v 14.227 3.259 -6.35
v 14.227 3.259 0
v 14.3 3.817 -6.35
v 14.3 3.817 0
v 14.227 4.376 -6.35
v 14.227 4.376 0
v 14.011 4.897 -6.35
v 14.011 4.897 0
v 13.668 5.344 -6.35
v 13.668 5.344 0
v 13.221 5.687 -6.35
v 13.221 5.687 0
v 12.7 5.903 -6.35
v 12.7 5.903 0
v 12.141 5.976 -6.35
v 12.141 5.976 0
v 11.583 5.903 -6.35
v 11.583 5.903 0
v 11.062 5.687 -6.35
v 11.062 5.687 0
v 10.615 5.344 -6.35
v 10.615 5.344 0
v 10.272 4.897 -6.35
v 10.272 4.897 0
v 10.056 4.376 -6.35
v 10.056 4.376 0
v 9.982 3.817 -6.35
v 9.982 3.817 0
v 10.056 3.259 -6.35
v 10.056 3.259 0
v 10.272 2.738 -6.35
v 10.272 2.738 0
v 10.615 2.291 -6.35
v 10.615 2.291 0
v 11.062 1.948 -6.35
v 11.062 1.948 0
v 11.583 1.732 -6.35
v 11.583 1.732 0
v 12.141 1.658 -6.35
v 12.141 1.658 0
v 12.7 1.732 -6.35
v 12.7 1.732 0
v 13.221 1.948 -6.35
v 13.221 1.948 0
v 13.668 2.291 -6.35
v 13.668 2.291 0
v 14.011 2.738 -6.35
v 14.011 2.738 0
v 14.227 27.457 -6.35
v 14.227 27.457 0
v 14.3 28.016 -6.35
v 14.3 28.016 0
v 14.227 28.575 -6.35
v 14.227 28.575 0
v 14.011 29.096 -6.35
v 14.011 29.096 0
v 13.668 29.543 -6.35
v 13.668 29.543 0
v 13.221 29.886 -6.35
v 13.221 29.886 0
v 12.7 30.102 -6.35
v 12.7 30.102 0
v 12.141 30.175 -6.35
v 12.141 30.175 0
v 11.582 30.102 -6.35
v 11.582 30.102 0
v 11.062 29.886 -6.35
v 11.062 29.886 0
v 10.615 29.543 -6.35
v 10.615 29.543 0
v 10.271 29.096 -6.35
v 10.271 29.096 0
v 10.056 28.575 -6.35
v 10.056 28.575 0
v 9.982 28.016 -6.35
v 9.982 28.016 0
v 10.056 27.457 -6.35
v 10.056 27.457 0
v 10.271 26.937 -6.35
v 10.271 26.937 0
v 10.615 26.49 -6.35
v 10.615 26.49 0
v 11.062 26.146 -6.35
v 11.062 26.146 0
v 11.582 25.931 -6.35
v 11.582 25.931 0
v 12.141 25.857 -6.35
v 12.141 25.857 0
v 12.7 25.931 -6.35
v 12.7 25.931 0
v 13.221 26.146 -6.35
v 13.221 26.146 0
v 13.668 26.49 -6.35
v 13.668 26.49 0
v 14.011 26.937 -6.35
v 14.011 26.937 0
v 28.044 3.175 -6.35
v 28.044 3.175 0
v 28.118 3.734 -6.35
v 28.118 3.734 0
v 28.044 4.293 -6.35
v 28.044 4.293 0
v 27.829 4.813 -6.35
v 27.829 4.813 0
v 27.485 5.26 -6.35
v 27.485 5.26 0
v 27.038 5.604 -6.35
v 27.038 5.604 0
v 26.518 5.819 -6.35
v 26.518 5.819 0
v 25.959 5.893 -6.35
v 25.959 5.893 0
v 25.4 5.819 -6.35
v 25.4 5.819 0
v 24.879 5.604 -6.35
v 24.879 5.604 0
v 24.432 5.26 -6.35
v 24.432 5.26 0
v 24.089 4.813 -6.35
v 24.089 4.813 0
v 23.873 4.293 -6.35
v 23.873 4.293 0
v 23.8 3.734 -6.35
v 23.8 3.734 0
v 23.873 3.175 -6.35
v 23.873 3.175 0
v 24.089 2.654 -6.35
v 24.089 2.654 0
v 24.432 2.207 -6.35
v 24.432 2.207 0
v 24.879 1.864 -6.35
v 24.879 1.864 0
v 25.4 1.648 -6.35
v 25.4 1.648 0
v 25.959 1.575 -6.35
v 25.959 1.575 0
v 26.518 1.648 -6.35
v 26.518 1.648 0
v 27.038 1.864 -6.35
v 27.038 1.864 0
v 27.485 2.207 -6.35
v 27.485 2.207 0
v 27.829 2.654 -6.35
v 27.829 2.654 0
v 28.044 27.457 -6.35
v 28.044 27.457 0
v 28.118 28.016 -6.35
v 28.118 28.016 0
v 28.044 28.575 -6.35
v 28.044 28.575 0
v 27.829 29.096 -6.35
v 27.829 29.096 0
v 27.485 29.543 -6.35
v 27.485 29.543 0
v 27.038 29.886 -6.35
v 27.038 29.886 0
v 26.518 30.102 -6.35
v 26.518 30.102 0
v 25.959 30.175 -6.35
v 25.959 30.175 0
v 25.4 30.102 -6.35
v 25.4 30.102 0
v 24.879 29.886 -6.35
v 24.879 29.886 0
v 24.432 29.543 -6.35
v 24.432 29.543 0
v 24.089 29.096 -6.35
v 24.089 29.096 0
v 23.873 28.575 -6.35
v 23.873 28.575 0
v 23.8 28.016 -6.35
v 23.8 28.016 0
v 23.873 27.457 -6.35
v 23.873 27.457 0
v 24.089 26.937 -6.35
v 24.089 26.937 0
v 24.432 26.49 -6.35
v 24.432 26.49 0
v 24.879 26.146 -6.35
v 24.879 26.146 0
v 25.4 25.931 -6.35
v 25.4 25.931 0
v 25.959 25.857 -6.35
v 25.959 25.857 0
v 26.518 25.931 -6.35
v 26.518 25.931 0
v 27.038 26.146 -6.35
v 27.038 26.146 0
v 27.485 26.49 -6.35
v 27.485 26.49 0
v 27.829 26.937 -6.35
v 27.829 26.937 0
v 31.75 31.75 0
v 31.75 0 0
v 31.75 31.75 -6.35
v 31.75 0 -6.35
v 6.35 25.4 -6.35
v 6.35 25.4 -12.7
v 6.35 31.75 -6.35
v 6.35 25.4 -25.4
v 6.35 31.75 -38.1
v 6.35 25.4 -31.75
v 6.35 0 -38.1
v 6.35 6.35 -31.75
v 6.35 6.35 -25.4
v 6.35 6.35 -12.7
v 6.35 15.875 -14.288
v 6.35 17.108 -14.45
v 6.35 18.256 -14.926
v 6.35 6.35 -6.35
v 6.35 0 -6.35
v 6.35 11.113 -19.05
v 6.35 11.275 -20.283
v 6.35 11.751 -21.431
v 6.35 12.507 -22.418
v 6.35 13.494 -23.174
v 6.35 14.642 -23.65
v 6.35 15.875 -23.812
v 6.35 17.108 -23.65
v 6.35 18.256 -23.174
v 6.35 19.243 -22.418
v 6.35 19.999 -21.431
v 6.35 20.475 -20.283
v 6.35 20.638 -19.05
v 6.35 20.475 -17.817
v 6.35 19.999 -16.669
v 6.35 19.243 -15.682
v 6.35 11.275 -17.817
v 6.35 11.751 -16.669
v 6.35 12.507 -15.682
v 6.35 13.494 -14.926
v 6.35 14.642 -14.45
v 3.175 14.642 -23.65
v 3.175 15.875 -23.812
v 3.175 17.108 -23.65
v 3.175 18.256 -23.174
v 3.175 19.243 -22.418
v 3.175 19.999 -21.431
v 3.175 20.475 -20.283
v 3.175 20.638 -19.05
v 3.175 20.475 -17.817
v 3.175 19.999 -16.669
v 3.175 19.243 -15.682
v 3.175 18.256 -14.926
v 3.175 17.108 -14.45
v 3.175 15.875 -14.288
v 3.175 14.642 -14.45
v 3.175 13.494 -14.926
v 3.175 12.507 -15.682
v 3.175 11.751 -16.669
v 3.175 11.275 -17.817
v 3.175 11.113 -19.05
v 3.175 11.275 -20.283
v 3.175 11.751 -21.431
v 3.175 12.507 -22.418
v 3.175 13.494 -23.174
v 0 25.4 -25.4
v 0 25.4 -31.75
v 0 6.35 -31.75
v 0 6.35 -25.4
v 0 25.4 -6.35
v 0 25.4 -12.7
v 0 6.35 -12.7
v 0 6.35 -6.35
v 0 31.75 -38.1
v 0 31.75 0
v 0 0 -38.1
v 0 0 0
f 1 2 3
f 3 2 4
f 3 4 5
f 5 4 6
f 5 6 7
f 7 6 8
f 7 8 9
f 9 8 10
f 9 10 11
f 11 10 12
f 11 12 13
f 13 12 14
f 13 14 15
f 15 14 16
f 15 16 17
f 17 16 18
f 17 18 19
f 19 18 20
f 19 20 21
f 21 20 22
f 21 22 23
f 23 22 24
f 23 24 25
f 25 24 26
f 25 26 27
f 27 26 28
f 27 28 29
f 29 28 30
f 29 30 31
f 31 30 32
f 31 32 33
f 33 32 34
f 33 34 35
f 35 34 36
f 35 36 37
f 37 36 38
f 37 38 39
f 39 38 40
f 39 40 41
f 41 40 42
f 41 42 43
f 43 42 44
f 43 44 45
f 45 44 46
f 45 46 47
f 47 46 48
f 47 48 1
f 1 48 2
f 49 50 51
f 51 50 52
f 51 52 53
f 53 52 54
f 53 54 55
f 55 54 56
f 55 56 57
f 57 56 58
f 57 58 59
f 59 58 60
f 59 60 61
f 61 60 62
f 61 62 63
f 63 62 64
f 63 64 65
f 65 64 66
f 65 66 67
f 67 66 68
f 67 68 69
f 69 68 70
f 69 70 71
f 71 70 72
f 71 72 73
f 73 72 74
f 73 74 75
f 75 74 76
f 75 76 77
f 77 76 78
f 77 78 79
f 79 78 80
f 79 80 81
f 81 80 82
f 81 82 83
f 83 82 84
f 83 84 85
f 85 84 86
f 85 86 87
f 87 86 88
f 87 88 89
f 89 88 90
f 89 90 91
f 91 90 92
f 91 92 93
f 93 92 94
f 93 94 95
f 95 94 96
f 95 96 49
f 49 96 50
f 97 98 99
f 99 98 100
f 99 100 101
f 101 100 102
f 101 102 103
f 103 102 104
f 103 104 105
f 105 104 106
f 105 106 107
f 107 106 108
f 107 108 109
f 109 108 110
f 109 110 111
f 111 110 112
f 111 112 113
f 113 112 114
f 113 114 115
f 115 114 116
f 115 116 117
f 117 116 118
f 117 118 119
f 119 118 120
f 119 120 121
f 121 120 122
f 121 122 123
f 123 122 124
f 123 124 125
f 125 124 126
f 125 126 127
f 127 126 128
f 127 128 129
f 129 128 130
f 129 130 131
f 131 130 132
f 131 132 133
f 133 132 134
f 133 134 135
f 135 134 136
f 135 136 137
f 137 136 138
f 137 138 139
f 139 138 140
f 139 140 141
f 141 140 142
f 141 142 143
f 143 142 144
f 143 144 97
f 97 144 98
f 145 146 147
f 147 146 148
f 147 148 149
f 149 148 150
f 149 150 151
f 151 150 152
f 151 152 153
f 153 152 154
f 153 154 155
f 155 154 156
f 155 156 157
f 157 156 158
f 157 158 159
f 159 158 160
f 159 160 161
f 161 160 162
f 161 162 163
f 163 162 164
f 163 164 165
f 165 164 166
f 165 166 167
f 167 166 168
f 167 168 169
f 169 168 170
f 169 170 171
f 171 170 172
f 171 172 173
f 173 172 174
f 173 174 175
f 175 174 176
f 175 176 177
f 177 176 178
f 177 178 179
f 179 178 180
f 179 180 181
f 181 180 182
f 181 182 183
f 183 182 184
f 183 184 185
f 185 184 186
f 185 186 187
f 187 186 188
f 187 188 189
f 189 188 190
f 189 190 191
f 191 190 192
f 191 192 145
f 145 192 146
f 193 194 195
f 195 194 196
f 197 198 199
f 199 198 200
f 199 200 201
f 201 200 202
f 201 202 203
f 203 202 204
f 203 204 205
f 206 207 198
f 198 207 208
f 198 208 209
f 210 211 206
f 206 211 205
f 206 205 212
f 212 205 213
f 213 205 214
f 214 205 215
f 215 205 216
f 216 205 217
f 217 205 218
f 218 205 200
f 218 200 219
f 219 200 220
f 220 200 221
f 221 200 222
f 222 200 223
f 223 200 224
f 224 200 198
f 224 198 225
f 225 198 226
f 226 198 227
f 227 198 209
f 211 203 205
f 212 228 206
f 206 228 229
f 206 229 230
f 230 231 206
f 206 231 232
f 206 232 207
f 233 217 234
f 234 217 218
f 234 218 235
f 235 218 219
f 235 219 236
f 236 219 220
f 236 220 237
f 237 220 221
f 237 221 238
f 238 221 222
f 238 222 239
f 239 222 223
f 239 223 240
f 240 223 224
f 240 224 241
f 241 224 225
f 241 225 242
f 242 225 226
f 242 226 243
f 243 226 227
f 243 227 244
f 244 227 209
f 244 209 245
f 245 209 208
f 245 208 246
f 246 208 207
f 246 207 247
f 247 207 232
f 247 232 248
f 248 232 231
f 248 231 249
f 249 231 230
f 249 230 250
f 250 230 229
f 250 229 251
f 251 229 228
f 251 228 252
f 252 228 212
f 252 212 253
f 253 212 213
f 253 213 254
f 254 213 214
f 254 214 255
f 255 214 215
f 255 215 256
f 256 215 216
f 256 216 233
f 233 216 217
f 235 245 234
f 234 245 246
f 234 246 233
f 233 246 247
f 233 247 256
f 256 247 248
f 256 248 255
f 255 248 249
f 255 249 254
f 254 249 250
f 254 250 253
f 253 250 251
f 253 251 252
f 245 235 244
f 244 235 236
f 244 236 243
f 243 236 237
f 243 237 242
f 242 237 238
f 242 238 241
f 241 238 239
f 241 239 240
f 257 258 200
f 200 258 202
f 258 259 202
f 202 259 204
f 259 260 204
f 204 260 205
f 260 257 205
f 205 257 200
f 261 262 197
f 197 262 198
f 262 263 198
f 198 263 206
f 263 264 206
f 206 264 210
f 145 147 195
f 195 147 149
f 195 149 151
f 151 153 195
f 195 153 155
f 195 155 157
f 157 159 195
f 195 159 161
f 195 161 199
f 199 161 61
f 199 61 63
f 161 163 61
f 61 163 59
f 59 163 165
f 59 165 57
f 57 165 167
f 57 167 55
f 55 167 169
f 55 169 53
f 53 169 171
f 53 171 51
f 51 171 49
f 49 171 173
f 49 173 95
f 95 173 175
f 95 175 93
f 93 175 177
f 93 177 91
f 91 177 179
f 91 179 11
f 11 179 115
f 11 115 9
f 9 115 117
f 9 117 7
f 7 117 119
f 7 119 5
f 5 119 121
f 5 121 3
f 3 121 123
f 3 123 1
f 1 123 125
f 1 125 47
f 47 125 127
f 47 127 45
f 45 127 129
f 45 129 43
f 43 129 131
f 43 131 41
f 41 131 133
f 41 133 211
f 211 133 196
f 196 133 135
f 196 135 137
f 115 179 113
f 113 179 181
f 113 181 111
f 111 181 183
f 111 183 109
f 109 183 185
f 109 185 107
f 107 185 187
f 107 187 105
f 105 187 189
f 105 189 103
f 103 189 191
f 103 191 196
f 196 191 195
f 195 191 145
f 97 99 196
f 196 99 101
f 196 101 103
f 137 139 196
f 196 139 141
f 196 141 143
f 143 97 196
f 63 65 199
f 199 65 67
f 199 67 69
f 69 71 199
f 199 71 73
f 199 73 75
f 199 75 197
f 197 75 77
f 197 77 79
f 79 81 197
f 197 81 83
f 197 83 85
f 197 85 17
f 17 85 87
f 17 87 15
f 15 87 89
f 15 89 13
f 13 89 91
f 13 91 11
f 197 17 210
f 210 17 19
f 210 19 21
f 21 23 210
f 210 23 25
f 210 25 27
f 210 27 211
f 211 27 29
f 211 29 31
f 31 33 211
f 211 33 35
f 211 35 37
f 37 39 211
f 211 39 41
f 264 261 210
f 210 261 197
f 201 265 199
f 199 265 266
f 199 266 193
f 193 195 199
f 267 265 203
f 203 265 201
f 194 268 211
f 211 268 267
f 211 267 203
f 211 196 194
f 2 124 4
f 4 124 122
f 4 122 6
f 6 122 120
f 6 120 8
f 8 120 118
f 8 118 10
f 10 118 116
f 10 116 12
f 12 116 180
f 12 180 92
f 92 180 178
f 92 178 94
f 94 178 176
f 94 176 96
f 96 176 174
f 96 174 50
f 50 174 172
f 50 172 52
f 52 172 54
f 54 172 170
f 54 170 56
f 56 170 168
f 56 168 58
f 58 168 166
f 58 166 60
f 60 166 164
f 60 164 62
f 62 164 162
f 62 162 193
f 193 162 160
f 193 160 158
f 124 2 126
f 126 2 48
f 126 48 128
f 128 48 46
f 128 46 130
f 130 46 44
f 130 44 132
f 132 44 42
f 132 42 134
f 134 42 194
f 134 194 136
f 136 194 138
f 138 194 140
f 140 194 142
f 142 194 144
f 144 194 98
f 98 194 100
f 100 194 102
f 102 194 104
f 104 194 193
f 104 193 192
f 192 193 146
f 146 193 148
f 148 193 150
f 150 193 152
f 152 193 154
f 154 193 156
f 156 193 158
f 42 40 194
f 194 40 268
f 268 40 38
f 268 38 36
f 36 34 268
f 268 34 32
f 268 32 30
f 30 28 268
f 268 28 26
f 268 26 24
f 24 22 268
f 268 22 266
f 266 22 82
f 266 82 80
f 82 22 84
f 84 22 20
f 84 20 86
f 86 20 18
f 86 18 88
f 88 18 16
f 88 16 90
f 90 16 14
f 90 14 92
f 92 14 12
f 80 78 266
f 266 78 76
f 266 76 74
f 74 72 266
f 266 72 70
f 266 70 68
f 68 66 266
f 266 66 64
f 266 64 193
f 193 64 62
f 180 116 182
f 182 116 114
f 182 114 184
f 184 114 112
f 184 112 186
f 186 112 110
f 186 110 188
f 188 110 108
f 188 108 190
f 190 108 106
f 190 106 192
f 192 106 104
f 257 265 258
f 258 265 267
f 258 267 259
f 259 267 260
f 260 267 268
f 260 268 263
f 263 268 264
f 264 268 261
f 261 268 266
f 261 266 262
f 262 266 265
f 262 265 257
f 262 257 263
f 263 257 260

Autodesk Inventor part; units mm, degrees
ref_plane "YZ Plane" through (0, 0, 0) normal (1, 0, 0) x (0, 1, 0)
ref_plane "XZ Plane" through (0, 0, 0) normal (0, 1, 0) x (-1, 0, 0)
ref_plane "XY Plane" through (0, 0, 0) normal (0, 0, 1) x (1, 0, 0)
sketch "Sketch4" plane through (0, 0, 0) normal (1, 0, 0) x (0, 1, 0)
  line L0 (0, 0) -> (31.75, 0)
  line L1 (31.75, 0) -> (31.75, -38.1)
  line L2 (31.75, -38.1) -> (0, -38.1)
  line L3 (0, -38.1) -> (0, 0)
  line L4 (25.4, -6.35) -> (6.35, -6.35)
  line L5 (6.35, -6.35) -> (6.35, -12.7)
  line L6 (6.35, -12.7) -> (25.4, -12.7)
  line L7 (25.4, -12.7) -> (25.4, -6.35)
  line L8 (25.4, -25.4) -> (6.35, -25.4)
  line L9 (6.35, -25.4) -> (6.35, -31.75)
  line L10 (6.35, -31.75) -> (25.4, -31.75)
  line L11 (25.4, -31.75) -> (25.4, -25.4)
  dimension "d36" = 31.75
  dimension "d37" = 38.1
  dimension "d38" = 19.05
  dimension "d39" = 6.35
  dimension "d40" = 6.35
  dimension "d41" = 6.35
  dimension "d42" = 6.35
  dimension "d43" = 6.35
  dimension "d44" = 6.35
extrude "Extrusion3" add sketch "Sketch4" along normal blind 6.35
sketch "Sketch5" plane through (6.35, 0, 0) normal (1, 0, 0) x (0, 0, -1)
  line L0 (25.4, 25.4) -> (31.75, 25.4) projected
  line L1 (31.75, 25.4) -> (31.75, 6.35) projected
  line L2 (31.75, 6.35) -> (25.4, 6.35) projected
  line L3 (25.4, 6.35) -> (25.4, 25.4) projected
  line L4 (6.35, 25.4) -> (12.7, 25.4) projected
  line L5 (12.7, 25.4) -> (12.7, 6.35) projected
  line L6 (12.7, 6.35) -> (6.35, 6.35) projected
  line L7 (6.35, 6.35) -> (6.35, 25.4) projected
  line L8 (0, 31.75) -> (0, 0) projected
  line L9 (0, 0) -> (38.1, 0) projected
  line L10 (38.1, 0) -> (38.1, 31.75) projected
  line L11 (38.1, 31.75) -> (0, 31.75) projected
  circle A0 centre (19.05, 15.875) radius 4.7625
  dimension "d47" = 9.525
extrude "Extrusion4" cut sketch "Sketch5" against normal blind 3.175 contours A0
sketch "Sketch6" plane through (0, 0, 0) normal (0, 0, 1) x (1, 0, 0)
  line L0 (3.175, 20.6375) -> (3.175, 11.1125) projected
  line L1 (0, 0) -> (0, 31.75) projected
  line L2 (0, 0) -> (6.35, 0) projected
  line L3 (6.35, 31.75) -> (6.35, 0) projected
  line L4 (0, 31.75) -> (6.35, 31.75) projected
  line L5 (0, 0) -> (6.35, 0) projected
  line L6 (0, 0) -> (31.75, 0)
  line L7 (31.75, 0) -> (31.75, 31.75)
  line L8 (31.75, 31.75) -> (0, 31.75)
  line L9 (0, 31.75) -> (0, 0)
  circle A0 centre (25.9588, 28.0162) radius 2.159
  circle A1 centre (25.9588, 3.7338) radius 2.159
  circle A2 centre (12.1412, 28.0162) radius 2.159
  circle A3 centre (12.1415, 3.8174) radius 2.159
  dimension "d50" = 31.75
  dimension "d51" = 4.318
  dimension "d53" = 3.7338
  dimension "d54" = 5.7912
  dimension "d55" = 4.318
  dimension "d56" = 4.318
  dimension "d57" = 4.318
  dimension "d58" = 13.8176
  dimension "d59" = 3.7338
  dimension "d60" = 13.8176
  dimension "d61" = 5.7912
  dimension "d64" = 3.7338
extrude "Extrusion5" add sketch "Sketch6" against normal blind 6.35 contours L3 L8 L7 L6
properties part number "TensionerPlate"
